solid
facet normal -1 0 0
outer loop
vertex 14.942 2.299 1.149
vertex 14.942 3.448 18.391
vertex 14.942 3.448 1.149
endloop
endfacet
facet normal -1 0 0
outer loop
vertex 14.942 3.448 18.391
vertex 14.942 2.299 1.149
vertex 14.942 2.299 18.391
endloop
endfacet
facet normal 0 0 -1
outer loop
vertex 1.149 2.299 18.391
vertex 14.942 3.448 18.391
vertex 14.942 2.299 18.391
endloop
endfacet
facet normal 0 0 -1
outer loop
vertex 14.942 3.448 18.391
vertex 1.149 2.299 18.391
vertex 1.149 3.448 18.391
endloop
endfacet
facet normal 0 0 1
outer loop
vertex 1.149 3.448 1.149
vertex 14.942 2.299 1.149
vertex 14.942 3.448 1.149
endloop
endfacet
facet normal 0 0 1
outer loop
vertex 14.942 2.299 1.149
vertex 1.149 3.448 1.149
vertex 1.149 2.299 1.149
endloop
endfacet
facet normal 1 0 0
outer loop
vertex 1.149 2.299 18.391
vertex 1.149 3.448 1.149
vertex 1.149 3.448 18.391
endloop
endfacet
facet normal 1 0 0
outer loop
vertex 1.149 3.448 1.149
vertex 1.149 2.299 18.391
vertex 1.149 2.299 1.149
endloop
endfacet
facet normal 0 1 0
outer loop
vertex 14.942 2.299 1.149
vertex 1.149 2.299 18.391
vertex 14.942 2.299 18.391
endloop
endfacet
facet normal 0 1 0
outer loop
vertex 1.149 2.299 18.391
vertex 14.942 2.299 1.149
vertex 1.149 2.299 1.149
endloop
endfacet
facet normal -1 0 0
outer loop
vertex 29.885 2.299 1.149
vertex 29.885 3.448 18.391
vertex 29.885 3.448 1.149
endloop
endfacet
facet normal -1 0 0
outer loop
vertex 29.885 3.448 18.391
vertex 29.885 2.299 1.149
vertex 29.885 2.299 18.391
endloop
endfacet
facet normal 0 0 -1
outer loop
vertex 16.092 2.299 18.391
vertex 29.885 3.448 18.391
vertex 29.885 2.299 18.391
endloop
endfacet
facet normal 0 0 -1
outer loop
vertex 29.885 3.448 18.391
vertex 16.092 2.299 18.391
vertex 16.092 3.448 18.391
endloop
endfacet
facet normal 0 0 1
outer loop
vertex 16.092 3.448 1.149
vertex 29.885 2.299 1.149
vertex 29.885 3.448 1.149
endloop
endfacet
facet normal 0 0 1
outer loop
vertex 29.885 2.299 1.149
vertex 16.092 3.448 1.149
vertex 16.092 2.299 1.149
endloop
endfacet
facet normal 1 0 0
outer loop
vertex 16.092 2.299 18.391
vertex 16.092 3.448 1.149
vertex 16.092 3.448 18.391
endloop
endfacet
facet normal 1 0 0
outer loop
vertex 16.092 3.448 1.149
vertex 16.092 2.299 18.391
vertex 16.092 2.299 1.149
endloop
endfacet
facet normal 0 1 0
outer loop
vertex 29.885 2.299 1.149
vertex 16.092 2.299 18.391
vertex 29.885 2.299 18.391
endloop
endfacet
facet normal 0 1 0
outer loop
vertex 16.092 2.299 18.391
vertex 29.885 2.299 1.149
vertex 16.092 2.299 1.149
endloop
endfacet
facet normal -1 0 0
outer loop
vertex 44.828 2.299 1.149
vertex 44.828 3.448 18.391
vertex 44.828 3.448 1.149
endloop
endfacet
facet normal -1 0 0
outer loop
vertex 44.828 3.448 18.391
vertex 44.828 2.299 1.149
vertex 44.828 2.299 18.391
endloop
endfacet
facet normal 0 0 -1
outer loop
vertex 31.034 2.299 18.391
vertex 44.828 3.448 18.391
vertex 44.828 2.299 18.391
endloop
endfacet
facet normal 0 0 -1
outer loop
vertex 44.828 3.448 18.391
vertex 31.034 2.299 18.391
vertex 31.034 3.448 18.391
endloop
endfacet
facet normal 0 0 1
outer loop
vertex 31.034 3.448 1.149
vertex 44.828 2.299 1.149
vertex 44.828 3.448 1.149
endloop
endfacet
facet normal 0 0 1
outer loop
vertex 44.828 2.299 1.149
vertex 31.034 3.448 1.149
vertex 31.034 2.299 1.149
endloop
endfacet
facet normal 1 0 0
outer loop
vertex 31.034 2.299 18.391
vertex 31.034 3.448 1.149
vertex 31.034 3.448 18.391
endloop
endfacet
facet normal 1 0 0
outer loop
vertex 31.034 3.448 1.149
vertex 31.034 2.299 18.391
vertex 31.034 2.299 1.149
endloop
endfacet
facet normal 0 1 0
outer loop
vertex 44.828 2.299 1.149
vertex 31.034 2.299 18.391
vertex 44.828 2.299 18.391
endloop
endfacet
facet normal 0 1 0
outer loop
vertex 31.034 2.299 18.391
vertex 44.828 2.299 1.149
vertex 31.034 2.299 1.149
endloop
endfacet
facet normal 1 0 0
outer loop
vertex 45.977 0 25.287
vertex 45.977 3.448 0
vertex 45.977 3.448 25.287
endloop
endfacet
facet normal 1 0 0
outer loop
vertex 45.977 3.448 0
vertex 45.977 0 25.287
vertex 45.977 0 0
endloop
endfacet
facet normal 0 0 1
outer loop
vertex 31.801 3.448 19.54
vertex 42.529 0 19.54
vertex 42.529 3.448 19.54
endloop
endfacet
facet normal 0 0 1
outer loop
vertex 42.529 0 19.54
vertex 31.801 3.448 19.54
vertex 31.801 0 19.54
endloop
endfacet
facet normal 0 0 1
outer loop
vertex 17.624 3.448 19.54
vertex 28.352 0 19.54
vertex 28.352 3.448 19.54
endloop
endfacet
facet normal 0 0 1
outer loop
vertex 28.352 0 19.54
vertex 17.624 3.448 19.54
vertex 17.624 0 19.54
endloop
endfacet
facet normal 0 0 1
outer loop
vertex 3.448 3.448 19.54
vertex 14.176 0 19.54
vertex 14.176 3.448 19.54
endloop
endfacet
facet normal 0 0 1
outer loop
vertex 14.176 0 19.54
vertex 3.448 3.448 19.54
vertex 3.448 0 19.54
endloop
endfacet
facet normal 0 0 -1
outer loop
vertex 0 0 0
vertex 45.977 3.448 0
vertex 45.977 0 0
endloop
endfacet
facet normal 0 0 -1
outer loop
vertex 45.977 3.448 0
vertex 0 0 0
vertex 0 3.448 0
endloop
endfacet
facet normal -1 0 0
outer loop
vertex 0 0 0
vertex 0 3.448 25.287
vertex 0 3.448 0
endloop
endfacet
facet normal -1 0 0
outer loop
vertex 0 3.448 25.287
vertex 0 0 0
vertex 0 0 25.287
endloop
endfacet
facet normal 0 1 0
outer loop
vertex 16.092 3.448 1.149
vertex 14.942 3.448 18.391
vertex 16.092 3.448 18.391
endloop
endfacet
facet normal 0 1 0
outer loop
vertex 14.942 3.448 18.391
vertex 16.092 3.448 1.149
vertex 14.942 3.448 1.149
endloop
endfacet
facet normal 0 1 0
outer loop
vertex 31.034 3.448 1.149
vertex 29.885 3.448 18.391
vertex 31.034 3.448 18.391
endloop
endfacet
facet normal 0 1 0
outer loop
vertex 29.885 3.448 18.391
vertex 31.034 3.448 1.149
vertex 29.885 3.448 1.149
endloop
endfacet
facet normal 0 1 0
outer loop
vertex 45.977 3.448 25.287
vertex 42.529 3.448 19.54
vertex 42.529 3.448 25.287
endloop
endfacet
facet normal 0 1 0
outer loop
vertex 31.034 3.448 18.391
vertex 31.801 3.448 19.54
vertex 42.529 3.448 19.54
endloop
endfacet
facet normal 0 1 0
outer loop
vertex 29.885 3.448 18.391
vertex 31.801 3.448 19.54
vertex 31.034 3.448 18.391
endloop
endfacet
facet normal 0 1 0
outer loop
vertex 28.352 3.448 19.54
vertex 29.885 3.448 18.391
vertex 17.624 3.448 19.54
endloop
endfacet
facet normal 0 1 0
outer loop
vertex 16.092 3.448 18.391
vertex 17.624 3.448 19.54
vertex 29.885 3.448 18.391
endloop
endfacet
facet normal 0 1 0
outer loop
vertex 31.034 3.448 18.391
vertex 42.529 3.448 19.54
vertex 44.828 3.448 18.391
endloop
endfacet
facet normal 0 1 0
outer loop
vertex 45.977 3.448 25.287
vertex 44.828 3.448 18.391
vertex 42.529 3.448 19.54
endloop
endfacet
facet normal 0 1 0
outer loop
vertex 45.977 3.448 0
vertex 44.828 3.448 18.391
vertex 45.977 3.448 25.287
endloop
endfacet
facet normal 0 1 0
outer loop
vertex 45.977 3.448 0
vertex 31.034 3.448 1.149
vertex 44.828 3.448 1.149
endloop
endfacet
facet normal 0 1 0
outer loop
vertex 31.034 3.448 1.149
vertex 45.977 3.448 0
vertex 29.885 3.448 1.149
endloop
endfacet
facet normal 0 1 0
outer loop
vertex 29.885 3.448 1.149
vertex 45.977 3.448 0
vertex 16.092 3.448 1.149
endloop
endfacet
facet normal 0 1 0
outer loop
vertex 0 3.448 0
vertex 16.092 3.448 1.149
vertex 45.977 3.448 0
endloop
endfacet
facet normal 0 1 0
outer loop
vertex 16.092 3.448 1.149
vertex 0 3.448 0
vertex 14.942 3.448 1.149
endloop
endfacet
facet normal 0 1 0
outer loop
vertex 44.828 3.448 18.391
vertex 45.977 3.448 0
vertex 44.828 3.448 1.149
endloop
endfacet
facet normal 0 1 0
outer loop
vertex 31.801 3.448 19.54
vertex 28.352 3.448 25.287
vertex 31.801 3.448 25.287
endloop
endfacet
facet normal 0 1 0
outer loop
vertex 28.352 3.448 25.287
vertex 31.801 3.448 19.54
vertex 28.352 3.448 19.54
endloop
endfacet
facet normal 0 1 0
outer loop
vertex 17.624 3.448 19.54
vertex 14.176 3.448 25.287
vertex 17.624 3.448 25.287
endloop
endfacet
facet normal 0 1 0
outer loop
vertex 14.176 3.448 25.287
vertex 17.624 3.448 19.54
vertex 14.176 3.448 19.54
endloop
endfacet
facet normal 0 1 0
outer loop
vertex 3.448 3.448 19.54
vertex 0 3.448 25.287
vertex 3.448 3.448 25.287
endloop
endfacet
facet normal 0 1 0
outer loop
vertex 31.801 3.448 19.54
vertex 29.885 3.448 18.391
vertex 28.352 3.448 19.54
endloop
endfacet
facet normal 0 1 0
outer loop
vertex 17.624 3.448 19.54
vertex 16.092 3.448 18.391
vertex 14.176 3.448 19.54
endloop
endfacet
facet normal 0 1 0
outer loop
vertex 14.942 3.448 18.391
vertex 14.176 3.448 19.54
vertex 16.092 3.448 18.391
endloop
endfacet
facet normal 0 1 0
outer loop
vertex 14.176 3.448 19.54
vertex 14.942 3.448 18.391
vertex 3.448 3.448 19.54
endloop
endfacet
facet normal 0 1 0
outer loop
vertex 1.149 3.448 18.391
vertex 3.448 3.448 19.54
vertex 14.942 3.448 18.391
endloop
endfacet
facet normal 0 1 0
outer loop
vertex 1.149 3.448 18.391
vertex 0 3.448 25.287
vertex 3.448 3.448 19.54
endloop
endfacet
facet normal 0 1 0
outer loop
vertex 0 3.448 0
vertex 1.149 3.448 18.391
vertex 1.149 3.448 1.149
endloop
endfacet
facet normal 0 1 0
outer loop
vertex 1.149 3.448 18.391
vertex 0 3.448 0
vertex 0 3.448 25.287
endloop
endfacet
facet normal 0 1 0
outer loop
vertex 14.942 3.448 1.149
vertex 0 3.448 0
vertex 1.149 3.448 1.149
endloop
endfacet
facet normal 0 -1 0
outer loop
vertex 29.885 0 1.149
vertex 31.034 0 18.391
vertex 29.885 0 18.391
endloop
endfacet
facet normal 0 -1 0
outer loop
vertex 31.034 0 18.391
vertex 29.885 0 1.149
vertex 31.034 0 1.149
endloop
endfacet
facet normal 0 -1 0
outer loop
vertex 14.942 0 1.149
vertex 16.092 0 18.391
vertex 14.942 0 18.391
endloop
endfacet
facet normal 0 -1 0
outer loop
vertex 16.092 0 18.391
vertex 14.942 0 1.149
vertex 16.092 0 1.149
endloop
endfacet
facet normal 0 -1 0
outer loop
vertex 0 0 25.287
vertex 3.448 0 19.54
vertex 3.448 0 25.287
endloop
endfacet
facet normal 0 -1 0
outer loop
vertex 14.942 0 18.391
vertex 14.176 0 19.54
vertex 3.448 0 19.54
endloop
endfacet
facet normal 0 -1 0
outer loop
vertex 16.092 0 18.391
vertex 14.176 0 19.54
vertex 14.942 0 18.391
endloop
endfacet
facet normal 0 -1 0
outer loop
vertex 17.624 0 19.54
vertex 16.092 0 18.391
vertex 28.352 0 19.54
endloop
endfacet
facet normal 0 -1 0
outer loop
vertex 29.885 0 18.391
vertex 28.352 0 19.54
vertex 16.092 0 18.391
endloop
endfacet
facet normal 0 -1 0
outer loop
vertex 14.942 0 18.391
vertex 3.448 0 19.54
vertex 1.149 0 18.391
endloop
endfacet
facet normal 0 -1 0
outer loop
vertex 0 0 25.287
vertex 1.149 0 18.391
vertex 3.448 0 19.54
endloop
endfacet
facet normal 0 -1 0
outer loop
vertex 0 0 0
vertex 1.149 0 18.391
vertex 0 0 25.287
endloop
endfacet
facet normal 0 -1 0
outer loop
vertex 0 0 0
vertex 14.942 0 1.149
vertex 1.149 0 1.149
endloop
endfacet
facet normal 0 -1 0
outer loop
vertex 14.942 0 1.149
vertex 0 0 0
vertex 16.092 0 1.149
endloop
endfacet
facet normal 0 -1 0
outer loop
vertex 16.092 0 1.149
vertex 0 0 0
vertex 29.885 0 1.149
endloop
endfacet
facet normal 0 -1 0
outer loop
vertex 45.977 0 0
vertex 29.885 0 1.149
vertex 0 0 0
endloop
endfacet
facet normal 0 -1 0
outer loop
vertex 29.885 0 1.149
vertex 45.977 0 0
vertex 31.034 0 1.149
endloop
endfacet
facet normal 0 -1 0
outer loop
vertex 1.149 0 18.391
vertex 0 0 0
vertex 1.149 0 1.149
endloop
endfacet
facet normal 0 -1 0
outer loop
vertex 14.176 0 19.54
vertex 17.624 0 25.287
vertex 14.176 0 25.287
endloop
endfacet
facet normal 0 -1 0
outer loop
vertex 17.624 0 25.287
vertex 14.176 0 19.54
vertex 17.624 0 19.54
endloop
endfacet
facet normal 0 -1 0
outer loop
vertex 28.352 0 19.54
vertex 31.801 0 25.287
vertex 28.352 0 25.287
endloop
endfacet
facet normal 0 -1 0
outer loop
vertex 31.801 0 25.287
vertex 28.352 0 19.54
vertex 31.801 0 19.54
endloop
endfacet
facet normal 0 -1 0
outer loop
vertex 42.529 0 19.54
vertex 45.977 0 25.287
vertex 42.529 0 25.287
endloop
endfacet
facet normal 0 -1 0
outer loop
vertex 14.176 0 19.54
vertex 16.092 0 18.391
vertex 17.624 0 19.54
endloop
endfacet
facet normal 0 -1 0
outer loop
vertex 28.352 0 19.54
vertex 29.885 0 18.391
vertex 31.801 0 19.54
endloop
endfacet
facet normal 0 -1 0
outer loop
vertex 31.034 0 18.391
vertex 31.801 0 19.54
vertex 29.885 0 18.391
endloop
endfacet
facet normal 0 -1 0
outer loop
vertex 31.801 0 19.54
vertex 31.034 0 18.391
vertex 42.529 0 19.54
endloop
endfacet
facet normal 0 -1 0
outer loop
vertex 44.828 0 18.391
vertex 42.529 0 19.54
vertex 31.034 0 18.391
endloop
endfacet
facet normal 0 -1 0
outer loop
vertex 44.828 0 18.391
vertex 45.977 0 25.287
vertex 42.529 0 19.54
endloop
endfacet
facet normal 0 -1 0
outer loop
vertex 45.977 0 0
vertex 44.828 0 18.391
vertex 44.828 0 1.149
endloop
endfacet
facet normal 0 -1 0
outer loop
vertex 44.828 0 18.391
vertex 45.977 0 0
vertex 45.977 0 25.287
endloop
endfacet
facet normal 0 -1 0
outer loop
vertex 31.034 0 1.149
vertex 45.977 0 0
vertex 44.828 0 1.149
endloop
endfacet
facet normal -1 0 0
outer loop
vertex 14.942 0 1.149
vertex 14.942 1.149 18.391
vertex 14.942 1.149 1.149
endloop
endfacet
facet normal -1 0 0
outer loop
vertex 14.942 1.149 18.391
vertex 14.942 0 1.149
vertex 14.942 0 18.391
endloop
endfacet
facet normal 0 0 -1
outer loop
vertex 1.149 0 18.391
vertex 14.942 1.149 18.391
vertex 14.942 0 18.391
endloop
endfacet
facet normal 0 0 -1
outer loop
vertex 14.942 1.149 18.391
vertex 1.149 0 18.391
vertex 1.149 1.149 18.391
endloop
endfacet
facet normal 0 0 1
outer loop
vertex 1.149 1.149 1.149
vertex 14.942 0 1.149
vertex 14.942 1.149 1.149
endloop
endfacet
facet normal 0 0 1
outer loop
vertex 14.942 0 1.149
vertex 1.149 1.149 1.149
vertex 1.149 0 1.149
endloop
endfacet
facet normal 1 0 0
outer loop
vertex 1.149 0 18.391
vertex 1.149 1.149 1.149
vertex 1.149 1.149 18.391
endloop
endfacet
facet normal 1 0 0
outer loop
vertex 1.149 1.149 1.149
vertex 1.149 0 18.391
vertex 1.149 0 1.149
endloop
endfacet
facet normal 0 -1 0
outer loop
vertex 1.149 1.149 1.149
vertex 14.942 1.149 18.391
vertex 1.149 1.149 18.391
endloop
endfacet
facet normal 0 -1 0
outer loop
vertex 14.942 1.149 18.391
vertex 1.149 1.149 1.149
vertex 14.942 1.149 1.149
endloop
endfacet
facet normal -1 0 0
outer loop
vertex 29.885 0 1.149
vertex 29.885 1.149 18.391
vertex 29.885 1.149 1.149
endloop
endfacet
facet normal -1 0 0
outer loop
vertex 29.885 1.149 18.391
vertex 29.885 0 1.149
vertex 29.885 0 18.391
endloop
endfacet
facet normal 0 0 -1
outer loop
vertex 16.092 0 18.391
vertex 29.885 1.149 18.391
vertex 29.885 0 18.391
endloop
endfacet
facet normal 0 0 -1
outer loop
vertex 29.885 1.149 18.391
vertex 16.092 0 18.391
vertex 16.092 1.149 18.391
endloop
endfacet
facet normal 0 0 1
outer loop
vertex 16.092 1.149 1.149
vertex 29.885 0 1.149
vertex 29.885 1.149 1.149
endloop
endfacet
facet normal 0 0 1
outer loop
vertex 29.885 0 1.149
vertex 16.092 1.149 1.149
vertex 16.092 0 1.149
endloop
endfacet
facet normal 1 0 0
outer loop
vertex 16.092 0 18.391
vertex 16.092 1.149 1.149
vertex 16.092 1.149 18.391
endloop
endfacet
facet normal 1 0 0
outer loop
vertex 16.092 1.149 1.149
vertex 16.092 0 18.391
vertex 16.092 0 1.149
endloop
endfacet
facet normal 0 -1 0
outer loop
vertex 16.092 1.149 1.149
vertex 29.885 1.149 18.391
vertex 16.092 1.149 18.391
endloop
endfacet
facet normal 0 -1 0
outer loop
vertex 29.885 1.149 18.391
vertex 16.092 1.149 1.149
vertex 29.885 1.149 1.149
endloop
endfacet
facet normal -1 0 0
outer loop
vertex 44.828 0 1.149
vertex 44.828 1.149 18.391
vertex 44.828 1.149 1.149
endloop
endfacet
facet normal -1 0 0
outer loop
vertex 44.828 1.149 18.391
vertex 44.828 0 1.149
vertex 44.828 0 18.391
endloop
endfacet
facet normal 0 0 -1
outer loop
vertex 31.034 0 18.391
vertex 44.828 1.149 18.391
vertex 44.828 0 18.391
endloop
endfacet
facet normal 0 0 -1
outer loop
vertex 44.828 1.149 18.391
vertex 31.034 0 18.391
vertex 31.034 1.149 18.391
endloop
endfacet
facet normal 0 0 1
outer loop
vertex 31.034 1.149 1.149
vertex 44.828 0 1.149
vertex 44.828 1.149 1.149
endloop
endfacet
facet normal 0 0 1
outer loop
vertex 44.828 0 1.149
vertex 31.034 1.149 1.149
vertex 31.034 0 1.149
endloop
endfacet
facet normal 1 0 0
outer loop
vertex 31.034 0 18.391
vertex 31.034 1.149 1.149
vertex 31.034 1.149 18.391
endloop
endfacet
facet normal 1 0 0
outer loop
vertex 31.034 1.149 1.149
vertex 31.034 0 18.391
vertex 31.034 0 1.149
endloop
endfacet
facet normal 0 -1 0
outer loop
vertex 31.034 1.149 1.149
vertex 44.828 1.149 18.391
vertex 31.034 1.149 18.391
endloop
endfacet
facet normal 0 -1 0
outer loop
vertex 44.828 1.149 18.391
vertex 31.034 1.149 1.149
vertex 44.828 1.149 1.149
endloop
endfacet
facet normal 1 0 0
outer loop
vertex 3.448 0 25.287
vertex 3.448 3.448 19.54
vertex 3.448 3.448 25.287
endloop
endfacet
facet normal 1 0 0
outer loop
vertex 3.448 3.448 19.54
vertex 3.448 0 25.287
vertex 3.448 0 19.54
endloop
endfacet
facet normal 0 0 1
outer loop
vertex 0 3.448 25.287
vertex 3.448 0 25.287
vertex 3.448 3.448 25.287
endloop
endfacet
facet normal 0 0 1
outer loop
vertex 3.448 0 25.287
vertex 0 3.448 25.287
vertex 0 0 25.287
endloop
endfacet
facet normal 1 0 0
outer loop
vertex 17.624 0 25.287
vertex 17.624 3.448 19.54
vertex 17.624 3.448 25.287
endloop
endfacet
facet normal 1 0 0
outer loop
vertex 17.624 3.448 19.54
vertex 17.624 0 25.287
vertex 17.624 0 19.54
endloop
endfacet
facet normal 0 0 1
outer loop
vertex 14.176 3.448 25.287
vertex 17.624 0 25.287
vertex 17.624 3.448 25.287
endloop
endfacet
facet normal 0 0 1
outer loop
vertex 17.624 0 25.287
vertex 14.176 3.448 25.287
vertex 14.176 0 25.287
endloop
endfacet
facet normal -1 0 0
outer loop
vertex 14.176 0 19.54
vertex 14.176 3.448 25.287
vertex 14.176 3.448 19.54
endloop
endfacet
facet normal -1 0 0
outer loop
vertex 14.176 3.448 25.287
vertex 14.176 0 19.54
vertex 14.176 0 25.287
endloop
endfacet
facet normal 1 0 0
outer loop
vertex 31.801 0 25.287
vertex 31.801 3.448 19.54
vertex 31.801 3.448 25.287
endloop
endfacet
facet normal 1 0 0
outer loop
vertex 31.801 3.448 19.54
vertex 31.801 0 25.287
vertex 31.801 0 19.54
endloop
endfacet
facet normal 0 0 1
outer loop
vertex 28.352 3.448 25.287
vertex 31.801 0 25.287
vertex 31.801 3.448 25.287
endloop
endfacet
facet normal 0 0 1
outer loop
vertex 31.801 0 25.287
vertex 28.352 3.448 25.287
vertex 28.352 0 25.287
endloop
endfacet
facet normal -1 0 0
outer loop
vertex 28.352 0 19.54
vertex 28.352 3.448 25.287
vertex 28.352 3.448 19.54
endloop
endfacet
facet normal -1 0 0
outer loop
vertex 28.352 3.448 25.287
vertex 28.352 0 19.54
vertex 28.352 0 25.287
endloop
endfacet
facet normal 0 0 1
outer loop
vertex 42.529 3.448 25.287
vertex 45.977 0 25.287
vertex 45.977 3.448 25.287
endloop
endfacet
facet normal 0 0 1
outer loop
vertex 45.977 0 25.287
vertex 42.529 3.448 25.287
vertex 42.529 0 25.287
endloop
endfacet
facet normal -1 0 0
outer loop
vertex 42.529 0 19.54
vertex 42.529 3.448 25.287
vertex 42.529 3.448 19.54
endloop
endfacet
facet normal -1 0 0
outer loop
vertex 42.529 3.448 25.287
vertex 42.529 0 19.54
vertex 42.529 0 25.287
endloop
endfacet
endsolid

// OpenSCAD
Main();

function m_to_h0(m) = m / 87 * 1000;
function cm_to_h0(cm) = cm / 87 * 10;

module Main() {
  frameWidth = m_to_h0(4);
  frameHight = m_to_h0(1.7);
  frameThickness = cm_to_h0(30);
  frameBorderThickness = cm_to_h0(10);
  frameBorderDepth = cm_to_h0(10);
  posterFrameNr = 3;
  legsNr = 3;
  legsHight = m_to_h0(0.5);

  union() {
    Frame(frameWidth, frameHight, frameThickness, frameBorderThickness, frameBorderDepth, posterFrameNr);

    Legs(legsNr, legsHight, frameWidth, frameHight, frameThickness);
  }
}

module Frame(frameWidth, frameHight, frameThickness, frameBorderThickness, frameBorderDepth, posterFrameNr) {
 
  dfbt = 2 * frameBorderThickness;
  bos = frameThickness - frameBorderDepth;
  pw = (frameWidth - frameBorderThickness * (posterFrameNr + 1)) / posterFrameNr;

  difference() {
    difference() {
      cube([ frameWidth, frameThickness, frameHight ], false);
      for (i = [0:posterFrameNr - 1]) {
        translate([ i * pw + (frameBorderThickness * i) + frameBorderThickness, bos, frameBorderThickness ])
          cube([ pw, frameThickness, frameHight - dfbt ], false);
      }
    }
    for (i = [0:posterFrameNr - 1]) {
      translate([ i * pw + (frameBorderThickness * i) + frameBorderThickness, bos * -1, frameBorderThickness ])
        cube([ pw, frameThickness, frameHight - dfbt ], false);
    }
  }
}

module Legs(legsNr, legsHight, frameWidth, frameHight, frameThickness) {

  lw = (frameWidth - frameThickness * (legsNr + 1)) / legsNr;

  for (i = [0:legsNr]) {
    translate([ i * lw + i * frameThickness, 0, frameHight ]) cube([ frameThickness, frameThickness, legsHight ], false);
  }
}
